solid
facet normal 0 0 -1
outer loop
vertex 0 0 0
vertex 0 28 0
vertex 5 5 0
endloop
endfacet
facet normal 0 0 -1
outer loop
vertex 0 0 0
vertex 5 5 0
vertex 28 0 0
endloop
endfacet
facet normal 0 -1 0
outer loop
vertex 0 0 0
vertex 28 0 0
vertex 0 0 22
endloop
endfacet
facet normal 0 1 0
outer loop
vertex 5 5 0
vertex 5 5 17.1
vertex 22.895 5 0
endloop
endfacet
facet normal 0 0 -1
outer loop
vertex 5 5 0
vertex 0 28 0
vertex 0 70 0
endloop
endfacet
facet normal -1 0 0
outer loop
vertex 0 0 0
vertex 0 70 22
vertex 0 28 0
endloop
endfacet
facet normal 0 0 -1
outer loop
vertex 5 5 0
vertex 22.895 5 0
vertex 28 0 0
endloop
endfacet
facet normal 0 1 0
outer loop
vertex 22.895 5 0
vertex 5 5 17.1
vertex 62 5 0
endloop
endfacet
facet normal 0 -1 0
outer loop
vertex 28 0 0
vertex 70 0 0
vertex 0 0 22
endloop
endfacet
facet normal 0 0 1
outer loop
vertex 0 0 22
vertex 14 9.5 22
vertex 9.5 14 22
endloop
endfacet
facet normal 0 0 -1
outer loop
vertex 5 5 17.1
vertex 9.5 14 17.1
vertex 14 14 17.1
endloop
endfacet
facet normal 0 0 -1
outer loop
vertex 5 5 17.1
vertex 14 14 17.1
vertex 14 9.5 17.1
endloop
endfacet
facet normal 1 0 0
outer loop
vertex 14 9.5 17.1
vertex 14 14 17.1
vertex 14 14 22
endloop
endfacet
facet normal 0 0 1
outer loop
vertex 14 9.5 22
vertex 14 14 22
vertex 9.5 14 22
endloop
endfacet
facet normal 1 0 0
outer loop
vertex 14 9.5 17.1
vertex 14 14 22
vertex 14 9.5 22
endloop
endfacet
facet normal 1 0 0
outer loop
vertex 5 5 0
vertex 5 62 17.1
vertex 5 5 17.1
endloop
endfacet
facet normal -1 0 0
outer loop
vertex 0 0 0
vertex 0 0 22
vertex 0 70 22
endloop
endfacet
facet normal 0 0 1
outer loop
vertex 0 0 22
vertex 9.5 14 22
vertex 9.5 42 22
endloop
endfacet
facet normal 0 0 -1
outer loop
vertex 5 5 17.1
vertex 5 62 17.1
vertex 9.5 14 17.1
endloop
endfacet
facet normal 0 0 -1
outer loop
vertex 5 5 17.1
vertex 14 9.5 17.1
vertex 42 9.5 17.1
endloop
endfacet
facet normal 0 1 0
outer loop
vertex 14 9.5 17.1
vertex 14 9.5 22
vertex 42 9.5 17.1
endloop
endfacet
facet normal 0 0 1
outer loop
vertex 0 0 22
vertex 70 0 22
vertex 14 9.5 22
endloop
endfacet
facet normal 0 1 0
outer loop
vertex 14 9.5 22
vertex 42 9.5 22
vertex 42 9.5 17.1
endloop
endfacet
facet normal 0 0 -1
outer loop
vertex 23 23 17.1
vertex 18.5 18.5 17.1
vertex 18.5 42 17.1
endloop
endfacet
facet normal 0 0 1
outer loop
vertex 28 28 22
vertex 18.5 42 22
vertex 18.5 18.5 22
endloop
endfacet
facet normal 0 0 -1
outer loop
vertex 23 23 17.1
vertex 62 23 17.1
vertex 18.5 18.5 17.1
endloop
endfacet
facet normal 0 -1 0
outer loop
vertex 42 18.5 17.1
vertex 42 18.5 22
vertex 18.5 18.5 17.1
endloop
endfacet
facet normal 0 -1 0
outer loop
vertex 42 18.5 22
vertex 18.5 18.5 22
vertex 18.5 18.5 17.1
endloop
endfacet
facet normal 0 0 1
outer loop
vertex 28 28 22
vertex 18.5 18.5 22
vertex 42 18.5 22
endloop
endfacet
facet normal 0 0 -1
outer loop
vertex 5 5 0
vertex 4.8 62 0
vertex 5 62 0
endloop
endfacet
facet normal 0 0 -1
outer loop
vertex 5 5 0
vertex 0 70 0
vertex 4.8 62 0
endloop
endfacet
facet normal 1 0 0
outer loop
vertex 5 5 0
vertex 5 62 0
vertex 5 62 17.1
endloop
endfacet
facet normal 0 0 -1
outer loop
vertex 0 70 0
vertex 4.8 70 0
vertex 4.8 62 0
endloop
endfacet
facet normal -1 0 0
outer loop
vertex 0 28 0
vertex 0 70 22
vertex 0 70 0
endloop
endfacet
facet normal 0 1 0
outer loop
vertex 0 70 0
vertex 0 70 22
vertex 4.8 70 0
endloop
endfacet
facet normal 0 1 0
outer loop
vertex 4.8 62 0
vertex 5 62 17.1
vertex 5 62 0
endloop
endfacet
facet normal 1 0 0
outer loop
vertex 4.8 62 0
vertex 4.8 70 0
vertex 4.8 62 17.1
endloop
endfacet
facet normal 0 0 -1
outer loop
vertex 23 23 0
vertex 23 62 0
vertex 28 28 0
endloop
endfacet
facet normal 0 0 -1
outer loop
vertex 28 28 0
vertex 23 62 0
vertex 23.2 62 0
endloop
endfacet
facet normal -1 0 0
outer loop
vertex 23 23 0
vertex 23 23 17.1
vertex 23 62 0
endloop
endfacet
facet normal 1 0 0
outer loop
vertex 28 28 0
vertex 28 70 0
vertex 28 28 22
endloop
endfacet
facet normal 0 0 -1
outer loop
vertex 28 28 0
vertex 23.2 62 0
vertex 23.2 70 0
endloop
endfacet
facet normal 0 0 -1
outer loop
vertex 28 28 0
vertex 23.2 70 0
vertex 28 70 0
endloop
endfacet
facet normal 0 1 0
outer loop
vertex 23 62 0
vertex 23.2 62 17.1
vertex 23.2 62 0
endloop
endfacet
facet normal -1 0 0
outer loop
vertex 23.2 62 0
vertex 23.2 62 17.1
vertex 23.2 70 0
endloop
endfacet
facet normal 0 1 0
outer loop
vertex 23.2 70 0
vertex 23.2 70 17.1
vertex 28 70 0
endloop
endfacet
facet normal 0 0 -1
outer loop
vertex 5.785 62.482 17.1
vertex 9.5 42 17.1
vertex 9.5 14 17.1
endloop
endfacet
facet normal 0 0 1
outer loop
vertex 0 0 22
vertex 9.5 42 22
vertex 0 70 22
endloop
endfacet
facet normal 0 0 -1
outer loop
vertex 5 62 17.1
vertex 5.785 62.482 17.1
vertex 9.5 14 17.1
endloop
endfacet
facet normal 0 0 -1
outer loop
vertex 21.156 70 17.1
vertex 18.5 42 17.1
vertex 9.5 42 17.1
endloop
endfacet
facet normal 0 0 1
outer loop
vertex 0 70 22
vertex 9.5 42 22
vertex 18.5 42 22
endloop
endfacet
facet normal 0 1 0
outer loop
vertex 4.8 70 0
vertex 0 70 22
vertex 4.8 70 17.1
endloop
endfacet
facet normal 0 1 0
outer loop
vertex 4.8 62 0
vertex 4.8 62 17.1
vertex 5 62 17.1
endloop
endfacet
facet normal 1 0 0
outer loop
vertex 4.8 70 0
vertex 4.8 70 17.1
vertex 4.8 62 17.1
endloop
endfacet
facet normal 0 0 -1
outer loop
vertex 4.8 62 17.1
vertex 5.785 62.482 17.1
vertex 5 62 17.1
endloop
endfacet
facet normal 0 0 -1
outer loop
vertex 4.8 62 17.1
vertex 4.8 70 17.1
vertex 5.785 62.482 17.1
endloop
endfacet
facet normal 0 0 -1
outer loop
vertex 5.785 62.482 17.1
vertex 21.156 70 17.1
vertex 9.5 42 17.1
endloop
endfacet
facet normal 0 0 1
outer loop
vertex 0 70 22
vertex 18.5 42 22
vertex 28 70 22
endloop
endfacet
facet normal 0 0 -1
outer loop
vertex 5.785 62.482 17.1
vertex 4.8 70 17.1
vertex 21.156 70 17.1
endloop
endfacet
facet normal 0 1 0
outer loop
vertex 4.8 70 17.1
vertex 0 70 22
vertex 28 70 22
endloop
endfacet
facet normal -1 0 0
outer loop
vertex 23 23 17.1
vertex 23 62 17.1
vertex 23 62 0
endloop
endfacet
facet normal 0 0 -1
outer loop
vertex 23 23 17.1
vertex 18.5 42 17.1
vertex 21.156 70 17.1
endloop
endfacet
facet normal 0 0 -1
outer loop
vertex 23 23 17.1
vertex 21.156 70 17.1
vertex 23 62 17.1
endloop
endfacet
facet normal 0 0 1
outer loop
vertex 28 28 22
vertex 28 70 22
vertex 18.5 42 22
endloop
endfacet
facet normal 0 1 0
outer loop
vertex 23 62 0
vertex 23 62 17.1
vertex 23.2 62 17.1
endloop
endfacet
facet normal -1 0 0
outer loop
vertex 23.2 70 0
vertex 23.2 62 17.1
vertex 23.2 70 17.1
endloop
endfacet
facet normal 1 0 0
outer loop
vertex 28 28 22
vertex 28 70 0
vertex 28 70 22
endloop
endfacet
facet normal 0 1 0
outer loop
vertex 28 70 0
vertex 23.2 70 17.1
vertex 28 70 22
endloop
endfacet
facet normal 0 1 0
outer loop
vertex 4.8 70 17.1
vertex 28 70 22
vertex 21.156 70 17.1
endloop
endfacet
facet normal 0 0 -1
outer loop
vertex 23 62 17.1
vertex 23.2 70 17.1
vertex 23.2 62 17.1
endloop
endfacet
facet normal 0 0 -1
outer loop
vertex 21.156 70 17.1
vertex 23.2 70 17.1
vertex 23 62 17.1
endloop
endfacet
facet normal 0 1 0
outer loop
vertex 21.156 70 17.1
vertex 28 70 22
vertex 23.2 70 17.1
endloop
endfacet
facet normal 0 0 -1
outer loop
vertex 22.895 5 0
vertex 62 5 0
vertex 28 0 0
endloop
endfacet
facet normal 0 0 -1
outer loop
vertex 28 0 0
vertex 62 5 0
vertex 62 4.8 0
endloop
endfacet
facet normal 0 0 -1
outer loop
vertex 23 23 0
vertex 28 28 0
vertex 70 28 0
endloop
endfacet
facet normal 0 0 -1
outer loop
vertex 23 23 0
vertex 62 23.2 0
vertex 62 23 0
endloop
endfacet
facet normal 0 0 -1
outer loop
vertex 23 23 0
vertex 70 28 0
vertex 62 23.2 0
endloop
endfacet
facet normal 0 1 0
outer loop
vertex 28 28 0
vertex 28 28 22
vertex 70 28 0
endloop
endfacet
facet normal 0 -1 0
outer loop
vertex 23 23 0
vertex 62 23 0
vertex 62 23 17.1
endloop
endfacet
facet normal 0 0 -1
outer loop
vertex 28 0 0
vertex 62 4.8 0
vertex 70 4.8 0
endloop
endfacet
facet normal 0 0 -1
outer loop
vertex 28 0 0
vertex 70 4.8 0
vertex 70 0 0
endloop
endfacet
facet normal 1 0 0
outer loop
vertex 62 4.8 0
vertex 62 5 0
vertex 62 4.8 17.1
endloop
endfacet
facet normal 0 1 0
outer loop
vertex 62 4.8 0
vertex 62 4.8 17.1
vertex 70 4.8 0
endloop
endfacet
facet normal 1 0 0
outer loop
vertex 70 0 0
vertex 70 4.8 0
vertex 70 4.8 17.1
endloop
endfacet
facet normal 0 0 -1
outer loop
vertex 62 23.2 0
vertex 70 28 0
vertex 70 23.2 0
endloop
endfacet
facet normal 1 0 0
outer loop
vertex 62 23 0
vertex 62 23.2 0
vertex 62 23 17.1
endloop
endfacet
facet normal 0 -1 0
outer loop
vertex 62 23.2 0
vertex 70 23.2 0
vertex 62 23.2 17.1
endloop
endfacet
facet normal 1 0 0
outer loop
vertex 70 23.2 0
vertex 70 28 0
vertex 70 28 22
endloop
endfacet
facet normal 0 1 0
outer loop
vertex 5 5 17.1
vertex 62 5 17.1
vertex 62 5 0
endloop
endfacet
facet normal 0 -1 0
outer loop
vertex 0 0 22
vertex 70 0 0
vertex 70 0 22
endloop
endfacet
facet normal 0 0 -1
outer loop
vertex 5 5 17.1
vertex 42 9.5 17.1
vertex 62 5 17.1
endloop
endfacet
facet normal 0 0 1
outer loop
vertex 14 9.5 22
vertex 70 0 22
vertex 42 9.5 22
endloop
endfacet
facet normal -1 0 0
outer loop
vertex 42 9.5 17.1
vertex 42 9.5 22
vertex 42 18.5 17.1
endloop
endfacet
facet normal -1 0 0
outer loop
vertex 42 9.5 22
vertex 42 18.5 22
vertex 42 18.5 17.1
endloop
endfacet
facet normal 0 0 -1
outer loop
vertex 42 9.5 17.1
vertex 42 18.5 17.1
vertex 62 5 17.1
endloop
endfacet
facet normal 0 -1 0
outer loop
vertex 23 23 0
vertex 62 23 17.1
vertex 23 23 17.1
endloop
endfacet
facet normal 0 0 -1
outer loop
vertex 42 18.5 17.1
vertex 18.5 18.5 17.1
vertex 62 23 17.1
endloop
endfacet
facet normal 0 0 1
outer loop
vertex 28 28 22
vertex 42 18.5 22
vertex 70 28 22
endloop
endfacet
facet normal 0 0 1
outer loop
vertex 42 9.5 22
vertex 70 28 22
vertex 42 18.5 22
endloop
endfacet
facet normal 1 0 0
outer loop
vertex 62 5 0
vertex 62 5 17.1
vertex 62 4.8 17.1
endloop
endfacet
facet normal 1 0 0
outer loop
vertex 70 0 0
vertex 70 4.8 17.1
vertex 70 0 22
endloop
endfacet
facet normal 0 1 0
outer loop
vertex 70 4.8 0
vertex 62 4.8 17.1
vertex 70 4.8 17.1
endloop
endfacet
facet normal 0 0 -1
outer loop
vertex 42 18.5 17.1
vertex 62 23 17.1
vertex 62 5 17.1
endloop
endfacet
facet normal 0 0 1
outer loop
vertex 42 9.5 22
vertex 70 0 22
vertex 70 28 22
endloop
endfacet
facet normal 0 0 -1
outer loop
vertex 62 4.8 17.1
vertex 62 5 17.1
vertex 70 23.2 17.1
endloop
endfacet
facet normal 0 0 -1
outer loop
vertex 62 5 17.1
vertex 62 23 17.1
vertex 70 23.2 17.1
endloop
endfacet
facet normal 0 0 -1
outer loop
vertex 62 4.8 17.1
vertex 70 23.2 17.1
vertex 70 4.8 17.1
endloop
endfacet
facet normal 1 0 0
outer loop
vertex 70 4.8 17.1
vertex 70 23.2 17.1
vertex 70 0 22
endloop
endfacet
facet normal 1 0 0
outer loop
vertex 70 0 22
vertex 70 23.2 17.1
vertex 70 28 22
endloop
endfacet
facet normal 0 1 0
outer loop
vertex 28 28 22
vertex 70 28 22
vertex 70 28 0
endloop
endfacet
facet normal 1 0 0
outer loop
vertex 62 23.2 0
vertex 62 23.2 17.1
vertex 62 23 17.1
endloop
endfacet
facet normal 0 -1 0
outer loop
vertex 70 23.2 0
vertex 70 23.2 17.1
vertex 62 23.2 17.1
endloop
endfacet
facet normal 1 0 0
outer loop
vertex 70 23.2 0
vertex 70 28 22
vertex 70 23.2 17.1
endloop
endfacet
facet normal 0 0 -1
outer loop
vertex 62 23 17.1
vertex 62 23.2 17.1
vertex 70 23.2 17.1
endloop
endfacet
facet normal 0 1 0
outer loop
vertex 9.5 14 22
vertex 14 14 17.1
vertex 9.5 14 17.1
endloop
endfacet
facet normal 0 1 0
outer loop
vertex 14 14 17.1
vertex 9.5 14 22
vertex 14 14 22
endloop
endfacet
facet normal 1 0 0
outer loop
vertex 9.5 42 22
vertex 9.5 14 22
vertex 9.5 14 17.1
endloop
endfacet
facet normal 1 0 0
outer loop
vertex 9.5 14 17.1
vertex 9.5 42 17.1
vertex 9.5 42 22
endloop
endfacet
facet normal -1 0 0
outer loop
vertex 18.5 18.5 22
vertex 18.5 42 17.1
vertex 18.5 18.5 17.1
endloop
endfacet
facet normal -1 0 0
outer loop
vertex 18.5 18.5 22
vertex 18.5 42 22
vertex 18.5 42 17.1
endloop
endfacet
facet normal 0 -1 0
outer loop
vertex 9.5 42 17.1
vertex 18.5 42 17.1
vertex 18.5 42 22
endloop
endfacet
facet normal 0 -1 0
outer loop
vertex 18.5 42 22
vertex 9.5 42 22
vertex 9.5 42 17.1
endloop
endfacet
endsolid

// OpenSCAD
// İkinci ürün = kulaksız gövde (corner-plain ile aynı).
// 70×22, et 5 mm, U kanal 18 mm.

clamp = 18;
entry = 18.4;
wall = 5;
arm = 70;
h = 22;
top = 5;
drop = h - top;
mouth = 8;
ch = wall + clamp + wall;

difference() {
  union() {
    cube([arm, ch, h]);
    cube([ch, arm, h]);
  }
  translate([wall, wall, -0.1]) cube([arm - wall + 1, clamp, drop + 0.2]);
  translate([wall, wall, -0.1]) cube([clamp, arm - wall + 1, drop + 0.2]);
  flare = (entry - clamp) / 2;
  translate([arm - mouth, wall - flare, -0.1]) cube([mouth + 1, entry, drop + 0.2]);
  translate([wall - flare, arm - mouth, -0.1]) cube([entry, mouth + 1, drop + 0.2]);
  win = 9;
  translate([14, wall + (clamp - win) / 2, drop - 1]) cube([28, win, top + 2]);
  translate([wall + (clamp - win) / 2, 14, drop - 1]) cube([win, 28, top + 2]);
}
